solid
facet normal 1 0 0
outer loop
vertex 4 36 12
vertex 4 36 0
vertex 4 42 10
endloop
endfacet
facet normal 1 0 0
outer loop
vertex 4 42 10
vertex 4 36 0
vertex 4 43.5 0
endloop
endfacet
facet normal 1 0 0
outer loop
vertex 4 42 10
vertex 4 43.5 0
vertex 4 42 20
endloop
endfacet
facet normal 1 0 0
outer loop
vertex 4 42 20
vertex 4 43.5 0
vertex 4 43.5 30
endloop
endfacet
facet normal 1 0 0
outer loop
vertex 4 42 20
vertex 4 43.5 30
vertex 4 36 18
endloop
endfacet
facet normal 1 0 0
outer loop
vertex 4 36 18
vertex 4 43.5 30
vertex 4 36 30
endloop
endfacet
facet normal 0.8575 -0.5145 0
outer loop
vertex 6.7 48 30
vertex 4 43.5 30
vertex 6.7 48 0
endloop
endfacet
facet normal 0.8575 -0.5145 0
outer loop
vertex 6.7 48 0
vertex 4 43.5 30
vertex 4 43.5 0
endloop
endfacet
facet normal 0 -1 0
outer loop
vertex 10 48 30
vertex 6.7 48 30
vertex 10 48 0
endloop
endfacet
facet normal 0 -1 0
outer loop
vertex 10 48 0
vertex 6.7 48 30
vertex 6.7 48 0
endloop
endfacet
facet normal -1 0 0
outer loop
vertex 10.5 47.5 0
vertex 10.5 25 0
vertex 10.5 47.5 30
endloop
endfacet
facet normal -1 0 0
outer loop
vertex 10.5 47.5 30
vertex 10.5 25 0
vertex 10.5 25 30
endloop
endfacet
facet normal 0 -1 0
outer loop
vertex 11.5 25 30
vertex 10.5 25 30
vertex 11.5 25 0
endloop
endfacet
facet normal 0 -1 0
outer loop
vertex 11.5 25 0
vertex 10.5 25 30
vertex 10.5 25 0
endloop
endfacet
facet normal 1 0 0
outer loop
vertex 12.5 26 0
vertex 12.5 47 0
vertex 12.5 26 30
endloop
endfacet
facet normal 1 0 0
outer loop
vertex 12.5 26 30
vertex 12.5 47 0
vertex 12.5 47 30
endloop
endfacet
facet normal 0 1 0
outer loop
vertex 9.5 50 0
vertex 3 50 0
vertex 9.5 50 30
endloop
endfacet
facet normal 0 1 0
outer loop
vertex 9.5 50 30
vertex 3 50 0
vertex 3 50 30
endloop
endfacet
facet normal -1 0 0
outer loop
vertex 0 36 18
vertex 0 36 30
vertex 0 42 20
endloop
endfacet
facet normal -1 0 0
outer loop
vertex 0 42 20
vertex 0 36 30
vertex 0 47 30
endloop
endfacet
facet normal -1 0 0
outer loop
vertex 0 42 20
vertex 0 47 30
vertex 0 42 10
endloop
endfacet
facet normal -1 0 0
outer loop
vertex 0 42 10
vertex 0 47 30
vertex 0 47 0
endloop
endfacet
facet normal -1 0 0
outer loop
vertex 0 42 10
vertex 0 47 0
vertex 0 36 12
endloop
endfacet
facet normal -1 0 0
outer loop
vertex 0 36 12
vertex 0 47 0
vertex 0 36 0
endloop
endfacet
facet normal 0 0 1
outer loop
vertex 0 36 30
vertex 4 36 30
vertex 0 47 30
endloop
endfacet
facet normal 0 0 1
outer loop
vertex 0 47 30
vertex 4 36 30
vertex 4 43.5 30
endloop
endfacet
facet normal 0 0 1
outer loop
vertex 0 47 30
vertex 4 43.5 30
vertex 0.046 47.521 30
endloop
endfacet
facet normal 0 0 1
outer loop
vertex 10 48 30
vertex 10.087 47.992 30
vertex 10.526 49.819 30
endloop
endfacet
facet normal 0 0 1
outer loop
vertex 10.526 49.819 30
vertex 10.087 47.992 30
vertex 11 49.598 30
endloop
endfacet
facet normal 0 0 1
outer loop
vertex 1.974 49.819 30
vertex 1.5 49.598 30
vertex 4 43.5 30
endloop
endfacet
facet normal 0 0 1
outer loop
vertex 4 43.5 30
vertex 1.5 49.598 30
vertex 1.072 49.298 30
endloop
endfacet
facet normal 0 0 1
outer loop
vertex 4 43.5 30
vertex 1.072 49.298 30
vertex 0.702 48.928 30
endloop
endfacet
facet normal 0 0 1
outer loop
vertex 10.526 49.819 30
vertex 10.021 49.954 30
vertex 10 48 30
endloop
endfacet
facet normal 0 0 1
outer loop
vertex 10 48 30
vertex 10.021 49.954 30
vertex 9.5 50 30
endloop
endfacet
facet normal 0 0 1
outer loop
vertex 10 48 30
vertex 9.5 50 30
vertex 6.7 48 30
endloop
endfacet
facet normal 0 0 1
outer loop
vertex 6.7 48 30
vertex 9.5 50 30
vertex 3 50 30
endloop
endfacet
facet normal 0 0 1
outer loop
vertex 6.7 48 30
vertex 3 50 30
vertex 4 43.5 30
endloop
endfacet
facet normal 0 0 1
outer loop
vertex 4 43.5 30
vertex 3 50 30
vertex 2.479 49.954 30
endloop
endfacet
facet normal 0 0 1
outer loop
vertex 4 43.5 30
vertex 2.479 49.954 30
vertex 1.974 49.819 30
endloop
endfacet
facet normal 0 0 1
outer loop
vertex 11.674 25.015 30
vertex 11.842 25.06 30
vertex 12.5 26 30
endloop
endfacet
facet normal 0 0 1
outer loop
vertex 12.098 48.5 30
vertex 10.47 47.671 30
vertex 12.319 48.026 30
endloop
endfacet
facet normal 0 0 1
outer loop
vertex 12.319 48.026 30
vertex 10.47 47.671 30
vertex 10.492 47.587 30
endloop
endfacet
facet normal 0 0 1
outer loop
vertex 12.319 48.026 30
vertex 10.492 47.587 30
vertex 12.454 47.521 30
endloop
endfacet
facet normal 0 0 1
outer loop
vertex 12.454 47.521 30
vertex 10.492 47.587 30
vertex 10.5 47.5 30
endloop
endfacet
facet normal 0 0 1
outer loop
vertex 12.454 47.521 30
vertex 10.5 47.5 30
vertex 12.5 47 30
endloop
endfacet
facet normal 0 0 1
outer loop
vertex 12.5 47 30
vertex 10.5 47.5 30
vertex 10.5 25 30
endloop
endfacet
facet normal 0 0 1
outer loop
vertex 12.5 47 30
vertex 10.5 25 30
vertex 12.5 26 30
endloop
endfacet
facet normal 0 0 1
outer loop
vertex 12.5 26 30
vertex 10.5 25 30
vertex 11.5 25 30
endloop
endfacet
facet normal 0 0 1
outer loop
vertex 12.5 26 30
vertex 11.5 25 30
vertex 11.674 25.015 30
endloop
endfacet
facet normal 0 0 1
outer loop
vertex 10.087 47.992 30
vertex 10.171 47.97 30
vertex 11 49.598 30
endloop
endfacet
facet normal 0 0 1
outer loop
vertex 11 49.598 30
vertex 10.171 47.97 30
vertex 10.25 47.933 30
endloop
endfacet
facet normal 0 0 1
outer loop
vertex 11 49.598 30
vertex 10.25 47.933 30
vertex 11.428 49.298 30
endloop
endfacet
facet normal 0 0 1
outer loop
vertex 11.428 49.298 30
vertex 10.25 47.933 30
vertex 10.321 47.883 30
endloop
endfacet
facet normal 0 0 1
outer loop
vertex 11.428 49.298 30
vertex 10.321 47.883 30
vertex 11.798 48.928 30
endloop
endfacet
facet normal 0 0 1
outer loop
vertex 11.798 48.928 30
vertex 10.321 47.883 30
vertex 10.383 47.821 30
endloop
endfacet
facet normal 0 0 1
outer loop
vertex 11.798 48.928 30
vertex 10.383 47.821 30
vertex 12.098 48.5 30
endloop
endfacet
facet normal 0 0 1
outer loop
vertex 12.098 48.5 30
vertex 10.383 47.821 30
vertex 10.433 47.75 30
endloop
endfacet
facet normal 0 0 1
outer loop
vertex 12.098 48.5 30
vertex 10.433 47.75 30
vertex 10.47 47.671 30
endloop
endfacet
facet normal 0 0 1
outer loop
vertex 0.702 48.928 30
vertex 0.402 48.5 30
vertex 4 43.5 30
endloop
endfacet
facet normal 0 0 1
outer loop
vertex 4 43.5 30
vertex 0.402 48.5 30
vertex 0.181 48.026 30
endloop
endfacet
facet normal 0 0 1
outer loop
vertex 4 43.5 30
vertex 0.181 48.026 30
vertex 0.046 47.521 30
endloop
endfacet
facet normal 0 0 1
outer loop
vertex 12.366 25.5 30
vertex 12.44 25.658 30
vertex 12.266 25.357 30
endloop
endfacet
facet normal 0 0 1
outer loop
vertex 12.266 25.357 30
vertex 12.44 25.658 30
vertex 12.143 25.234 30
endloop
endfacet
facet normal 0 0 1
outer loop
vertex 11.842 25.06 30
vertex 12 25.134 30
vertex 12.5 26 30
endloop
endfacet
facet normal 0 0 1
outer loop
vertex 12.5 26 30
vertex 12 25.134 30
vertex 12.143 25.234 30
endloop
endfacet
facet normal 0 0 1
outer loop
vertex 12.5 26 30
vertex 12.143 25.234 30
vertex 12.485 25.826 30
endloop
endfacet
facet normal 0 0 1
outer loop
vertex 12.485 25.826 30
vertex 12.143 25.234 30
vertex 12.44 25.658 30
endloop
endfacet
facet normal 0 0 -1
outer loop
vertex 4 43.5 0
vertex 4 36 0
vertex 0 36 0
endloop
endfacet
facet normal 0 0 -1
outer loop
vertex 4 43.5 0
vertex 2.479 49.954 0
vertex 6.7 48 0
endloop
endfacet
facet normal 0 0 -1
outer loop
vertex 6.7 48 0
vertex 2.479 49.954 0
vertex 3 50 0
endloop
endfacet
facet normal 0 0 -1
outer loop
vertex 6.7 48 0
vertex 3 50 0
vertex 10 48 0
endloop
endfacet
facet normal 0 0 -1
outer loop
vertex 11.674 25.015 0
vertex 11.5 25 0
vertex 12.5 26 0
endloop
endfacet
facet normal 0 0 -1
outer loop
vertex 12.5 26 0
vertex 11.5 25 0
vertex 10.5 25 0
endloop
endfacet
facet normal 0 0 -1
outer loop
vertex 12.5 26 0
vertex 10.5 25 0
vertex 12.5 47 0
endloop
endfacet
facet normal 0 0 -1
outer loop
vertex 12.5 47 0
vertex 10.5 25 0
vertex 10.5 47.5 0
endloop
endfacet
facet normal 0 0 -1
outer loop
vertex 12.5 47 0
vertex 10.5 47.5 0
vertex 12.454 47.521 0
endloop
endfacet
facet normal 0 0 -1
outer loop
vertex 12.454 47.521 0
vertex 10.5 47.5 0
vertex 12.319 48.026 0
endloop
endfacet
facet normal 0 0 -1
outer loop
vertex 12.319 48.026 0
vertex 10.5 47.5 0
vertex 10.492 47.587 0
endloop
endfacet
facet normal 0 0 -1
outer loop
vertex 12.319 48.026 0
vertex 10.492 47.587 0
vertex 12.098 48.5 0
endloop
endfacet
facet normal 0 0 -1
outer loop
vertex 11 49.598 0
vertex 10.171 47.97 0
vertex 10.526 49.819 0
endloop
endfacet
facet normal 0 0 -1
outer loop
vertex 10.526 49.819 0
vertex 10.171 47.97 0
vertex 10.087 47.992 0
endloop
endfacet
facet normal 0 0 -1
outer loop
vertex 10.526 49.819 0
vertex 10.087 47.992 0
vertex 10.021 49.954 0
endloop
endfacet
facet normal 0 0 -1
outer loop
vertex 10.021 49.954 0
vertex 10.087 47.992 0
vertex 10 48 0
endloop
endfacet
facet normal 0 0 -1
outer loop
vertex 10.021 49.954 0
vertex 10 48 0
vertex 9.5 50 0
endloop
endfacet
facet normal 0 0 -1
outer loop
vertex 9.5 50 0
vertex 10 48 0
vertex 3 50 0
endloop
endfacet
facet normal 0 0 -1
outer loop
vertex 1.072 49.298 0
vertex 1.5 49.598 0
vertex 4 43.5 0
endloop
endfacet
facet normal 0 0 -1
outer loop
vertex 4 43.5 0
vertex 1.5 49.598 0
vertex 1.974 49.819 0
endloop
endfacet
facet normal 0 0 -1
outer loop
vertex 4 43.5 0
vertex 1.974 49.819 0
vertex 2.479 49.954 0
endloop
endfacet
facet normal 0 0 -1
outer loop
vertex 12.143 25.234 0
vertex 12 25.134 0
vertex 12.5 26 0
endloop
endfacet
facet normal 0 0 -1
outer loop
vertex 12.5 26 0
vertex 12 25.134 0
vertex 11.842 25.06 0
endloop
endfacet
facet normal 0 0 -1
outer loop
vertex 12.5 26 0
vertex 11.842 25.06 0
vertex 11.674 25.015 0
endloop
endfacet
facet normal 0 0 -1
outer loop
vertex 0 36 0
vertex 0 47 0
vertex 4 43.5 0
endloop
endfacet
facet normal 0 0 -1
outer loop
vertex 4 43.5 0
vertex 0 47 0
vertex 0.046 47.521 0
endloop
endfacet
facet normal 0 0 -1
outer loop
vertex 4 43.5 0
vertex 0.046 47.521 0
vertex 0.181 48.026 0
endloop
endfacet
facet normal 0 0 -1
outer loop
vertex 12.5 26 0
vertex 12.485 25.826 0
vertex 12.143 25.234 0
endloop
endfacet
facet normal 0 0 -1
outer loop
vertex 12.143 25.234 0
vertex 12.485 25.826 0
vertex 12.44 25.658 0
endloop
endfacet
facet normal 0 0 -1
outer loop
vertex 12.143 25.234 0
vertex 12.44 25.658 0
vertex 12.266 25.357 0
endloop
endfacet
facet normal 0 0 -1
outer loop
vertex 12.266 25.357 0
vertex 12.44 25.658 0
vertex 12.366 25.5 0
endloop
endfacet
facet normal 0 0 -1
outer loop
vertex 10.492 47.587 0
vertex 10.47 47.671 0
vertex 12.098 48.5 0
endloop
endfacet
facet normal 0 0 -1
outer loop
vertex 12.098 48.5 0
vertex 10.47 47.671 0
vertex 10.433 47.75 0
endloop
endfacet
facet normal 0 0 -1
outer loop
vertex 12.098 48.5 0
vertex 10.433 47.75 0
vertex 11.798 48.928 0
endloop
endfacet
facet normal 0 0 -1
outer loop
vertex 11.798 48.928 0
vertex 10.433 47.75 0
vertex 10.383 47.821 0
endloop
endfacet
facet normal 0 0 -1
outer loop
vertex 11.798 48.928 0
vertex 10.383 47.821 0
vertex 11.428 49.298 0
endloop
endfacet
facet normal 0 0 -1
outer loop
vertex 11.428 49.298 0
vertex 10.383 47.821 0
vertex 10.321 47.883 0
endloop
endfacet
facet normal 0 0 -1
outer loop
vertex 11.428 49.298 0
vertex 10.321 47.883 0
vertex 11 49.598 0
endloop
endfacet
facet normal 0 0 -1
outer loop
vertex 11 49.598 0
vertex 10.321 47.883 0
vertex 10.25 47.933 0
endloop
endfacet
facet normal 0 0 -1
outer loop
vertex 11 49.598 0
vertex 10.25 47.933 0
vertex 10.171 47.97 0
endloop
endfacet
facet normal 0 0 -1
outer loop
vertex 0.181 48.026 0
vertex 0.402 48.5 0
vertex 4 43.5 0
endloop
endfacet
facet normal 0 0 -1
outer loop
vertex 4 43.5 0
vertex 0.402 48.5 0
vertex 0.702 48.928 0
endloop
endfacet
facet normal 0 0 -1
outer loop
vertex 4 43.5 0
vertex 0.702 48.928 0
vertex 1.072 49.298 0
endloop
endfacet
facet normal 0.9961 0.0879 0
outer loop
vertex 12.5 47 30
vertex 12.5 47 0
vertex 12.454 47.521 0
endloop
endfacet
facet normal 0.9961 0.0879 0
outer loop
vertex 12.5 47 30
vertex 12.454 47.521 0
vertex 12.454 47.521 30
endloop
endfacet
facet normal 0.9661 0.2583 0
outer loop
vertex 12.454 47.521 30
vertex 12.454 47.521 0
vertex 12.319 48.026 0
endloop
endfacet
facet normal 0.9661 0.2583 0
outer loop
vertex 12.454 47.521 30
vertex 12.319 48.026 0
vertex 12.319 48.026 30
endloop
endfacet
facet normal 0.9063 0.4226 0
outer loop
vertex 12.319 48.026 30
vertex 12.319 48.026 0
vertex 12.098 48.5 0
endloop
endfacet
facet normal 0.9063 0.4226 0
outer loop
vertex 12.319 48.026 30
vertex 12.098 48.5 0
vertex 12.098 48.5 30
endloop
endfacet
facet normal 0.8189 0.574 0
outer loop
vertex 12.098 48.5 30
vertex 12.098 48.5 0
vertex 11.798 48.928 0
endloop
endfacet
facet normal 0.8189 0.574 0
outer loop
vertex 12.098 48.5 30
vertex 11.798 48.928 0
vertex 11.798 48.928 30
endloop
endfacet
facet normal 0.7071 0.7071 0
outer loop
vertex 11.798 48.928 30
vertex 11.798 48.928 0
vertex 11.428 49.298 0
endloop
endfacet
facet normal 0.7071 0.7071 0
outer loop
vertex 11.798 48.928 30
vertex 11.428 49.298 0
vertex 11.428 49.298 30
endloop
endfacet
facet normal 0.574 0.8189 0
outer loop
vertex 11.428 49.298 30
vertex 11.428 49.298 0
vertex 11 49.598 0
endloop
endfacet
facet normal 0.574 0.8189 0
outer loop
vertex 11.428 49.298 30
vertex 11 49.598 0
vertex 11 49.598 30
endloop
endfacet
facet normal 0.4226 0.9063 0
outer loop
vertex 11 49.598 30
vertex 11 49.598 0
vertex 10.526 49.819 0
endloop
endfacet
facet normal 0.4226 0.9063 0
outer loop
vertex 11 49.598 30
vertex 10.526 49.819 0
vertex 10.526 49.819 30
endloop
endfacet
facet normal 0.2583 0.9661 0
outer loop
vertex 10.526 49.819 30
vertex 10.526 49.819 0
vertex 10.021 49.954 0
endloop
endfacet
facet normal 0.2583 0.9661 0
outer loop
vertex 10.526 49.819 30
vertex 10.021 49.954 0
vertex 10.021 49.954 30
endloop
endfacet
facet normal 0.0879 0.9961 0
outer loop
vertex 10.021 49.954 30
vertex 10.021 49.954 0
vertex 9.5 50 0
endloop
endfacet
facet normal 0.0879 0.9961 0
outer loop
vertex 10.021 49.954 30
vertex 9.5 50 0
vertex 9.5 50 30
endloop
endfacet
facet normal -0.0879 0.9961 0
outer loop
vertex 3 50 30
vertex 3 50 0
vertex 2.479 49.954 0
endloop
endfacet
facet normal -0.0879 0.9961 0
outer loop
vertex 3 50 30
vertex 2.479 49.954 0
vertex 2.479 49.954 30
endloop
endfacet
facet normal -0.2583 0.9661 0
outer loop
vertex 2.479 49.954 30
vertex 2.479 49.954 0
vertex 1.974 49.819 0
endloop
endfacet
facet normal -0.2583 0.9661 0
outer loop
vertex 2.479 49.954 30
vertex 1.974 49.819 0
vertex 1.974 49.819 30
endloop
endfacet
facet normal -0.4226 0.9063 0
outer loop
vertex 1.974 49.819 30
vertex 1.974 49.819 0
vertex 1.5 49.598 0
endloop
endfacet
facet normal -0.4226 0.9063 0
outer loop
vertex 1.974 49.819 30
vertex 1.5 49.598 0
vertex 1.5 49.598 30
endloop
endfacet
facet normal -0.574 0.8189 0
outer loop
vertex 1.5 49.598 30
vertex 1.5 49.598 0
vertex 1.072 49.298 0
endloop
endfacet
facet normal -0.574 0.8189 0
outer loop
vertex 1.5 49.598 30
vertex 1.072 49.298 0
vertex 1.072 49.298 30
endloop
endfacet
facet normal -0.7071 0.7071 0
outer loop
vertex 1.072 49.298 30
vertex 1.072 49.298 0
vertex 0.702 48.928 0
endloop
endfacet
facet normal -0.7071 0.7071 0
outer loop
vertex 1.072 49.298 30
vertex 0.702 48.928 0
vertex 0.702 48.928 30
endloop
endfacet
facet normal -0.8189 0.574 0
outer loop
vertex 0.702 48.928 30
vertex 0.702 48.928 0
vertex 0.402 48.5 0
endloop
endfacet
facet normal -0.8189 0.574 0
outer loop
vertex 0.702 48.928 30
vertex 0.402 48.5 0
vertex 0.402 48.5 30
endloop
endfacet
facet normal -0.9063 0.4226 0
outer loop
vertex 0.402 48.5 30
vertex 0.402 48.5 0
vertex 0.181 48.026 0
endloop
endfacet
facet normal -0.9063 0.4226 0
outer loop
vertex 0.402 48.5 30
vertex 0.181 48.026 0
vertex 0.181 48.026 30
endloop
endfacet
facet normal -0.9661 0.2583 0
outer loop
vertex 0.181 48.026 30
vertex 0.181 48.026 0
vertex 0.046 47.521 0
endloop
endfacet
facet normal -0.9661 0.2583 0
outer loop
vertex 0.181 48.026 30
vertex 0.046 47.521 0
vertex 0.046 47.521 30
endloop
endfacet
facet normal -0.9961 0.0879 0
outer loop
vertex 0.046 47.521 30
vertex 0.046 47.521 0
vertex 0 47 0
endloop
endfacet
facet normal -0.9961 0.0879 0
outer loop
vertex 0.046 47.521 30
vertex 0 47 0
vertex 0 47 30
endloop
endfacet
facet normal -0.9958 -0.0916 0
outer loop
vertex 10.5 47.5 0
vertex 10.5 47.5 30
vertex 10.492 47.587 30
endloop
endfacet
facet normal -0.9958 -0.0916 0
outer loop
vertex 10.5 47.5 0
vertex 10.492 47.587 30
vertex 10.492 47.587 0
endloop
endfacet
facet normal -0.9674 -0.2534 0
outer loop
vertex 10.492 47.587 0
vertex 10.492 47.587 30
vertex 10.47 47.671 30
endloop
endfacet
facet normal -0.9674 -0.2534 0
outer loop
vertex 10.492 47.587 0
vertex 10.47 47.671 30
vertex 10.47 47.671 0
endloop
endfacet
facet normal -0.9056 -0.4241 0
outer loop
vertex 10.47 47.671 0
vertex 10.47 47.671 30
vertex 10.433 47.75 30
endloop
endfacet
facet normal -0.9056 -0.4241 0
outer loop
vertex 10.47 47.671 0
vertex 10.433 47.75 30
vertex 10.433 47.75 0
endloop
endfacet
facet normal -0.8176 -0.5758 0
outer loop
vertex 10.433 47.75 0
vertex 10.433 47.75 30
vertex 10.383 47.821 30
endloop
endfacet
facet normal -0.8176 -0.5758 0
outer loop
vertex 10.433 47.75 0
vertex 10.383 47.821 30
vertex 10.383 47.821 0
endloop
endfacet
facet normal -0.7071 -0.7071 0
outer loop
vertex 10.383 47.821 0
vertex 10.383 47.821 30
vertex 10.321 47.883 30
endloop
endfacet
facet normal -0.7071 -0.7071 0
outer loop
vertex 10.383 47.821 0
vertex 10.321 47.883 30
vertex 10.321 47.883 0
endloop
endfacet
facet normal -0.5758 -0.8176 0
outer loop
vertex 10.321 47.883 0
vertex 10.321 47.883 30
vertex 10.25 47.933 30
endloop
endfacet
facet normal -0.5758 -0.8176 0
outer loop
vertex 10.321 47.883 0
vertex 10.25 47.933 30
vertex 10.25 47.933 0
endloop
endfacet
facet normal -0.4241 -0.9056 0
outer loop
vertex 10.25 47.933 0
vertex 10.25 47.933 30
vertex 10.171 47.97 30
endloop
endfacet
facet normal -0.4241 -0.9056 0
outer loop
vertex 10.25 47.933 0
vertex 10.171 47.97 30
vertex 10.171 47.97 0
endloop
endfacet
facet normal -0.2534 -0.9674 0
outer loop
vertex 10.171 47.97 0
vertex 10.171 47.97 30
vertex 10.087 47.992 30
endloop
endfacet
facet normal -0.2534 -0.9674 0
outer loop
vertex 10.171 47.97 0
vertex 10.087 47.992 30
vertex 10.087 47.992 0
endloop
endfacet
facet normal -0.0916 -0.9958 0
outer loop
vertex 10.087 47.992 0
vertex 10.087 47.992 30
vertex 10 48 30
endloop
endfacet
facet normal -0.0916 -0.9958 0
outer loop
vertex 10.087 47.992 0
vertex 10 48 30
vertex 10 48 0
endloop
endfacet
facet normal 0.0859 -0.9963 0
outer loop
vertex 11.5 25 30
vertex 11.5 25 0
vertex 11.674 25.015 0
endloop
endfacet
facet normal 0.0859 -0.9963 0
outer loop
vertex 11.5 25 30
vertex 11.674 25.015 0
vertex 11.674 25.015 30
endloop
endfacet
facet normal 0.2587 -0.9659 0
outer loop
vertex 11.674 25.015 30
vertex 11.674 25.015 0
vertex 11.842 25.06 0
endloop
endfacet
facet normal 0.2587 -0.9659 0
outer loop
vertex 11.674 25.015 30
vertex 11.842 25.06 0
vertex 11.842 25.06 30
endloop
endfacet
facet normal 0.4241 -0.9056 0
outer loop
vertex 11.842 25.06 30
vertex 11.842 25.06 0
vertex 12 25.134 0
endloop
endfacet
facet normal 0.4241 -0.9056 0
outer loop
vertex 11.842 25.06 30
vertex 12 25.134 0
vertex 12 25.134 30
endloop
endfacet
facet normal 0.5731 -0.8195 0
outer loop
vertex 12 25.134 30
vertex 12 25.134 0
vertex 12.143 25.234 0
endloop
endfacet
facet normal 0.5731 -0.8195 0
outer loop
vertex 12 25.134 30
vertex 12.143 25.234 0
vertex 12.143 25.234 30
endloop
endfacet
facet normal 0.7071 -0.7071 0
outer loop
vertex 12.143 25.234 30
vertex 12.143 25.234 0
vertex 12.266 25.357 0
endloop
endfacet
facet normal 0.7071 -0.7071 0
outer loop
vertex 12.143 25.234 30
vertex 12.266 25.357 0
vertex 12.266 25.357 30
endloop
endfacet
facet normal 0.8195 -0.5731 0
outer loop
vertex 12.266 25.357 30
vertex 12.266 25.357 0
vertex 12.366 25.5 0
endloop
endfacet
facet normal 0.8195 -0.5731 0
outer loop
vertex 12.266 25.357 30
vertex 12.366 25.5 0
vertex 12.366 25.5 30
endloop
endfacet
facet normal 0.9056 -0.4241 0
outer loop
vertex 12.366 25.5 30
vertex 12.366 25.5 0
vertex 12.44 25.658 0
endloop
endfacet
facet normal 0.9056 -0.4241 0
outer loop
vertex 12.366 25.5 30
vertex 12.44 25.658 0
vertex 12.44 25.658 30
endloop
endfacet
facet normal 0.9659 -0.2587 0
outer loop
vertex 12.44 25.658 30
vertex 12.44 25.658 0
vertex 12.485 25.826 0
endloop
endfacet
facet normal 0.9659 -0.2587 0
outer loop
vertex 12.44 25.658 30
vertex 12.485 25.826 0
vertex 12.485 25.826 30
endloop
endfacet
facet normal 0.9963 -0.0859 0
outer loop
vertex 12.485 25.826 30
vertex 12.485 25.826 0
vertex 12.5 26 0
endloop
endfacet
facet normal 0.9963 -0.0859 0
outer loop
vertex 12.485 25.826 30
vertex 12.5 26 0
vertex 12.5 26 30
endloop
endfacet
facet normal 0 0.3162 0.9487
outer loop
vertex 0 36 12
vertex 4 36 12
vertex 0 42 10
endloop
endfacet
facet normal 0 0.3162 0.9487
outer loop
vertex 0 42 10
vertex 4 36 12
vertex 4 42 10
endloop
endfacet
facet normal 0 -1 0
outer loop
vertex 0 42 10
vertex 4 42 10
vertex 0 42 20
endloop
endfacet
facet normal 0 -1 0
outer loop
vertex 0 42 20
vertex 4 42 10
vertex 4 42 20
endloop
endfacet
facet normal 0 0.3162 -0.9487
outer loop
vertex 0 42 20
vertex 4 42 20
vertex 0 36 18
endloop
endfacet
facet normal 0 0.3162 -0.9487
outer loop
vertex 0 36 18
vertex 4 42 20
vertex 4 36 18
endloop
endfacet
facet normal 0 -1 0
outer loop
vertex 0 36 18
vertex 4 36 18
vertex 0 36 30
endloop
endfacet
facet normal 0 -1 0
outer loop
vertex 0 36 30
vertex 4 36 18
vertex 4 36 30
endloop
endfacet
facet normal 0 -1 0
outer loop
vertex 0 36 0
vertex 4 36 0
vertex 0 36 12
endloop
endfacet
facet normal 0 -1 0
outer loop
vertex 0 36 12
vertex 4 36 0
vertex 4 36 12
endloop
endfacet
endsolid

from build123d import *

# Parameters (mm, degrees)
BOSS_EXTRUDE1_DEPTH = 30
FILLET1_R           = 3
FILLET2_R           = 0.5
FILLET3_R           = 1
CUT_EXTRUDE1_DEPTH  = 10


with BuildPart() as part:
    # Sketch1 → Boss-Extrude1 (new body)
    with BuildSketch(Plane.XY):
        Polygon((0, 0), (0, 50), (12.5, 50), (12.5, 25), (10.5, 25), (10.5, 48), (6.7, 48), (4, 43.5), (4, 0), align=None)
    extrude(amount=BOSS_EXTRUDE1_DEPTH)

    # Fillet1
    fillet1_edges = [part.edges().sort_by_distance(p)[0] for p in [
        (0, 50, 15),
        (12.5, 50, 15),
    ]]
    fillet(fillet1_edges, radius=FILLET1_R)

    # Fillet2
    fillet2_edges = [part.edges().sort_by_distance(p)[0] for p in [
        (10.5, 48, 15),
    ]]
    fillet(fillet2_edges, radius=FILLET2_R)

    # Fillet3
    fillet3_edges = [part.edges().sort_by_distance(p)[0] for p in [
        (12.5, 25, 15),
    ]]
    fillet(fillet3_edges, radius=FILLET3_R)

    # Sketch2 → Cut-Extrude1 (cut)
    with BuildSketch(Plane.ZY):
        Polygon((10, 42), (20, 42), (18, 36), (30, 36), (30, 0), (0, 0), (0, 36), (12, 36), align=None)
    extrude(amount=-CUT_EXTRUDE1_DEPTH, mode=Mode.SUBTRACT)


solid = part.part
